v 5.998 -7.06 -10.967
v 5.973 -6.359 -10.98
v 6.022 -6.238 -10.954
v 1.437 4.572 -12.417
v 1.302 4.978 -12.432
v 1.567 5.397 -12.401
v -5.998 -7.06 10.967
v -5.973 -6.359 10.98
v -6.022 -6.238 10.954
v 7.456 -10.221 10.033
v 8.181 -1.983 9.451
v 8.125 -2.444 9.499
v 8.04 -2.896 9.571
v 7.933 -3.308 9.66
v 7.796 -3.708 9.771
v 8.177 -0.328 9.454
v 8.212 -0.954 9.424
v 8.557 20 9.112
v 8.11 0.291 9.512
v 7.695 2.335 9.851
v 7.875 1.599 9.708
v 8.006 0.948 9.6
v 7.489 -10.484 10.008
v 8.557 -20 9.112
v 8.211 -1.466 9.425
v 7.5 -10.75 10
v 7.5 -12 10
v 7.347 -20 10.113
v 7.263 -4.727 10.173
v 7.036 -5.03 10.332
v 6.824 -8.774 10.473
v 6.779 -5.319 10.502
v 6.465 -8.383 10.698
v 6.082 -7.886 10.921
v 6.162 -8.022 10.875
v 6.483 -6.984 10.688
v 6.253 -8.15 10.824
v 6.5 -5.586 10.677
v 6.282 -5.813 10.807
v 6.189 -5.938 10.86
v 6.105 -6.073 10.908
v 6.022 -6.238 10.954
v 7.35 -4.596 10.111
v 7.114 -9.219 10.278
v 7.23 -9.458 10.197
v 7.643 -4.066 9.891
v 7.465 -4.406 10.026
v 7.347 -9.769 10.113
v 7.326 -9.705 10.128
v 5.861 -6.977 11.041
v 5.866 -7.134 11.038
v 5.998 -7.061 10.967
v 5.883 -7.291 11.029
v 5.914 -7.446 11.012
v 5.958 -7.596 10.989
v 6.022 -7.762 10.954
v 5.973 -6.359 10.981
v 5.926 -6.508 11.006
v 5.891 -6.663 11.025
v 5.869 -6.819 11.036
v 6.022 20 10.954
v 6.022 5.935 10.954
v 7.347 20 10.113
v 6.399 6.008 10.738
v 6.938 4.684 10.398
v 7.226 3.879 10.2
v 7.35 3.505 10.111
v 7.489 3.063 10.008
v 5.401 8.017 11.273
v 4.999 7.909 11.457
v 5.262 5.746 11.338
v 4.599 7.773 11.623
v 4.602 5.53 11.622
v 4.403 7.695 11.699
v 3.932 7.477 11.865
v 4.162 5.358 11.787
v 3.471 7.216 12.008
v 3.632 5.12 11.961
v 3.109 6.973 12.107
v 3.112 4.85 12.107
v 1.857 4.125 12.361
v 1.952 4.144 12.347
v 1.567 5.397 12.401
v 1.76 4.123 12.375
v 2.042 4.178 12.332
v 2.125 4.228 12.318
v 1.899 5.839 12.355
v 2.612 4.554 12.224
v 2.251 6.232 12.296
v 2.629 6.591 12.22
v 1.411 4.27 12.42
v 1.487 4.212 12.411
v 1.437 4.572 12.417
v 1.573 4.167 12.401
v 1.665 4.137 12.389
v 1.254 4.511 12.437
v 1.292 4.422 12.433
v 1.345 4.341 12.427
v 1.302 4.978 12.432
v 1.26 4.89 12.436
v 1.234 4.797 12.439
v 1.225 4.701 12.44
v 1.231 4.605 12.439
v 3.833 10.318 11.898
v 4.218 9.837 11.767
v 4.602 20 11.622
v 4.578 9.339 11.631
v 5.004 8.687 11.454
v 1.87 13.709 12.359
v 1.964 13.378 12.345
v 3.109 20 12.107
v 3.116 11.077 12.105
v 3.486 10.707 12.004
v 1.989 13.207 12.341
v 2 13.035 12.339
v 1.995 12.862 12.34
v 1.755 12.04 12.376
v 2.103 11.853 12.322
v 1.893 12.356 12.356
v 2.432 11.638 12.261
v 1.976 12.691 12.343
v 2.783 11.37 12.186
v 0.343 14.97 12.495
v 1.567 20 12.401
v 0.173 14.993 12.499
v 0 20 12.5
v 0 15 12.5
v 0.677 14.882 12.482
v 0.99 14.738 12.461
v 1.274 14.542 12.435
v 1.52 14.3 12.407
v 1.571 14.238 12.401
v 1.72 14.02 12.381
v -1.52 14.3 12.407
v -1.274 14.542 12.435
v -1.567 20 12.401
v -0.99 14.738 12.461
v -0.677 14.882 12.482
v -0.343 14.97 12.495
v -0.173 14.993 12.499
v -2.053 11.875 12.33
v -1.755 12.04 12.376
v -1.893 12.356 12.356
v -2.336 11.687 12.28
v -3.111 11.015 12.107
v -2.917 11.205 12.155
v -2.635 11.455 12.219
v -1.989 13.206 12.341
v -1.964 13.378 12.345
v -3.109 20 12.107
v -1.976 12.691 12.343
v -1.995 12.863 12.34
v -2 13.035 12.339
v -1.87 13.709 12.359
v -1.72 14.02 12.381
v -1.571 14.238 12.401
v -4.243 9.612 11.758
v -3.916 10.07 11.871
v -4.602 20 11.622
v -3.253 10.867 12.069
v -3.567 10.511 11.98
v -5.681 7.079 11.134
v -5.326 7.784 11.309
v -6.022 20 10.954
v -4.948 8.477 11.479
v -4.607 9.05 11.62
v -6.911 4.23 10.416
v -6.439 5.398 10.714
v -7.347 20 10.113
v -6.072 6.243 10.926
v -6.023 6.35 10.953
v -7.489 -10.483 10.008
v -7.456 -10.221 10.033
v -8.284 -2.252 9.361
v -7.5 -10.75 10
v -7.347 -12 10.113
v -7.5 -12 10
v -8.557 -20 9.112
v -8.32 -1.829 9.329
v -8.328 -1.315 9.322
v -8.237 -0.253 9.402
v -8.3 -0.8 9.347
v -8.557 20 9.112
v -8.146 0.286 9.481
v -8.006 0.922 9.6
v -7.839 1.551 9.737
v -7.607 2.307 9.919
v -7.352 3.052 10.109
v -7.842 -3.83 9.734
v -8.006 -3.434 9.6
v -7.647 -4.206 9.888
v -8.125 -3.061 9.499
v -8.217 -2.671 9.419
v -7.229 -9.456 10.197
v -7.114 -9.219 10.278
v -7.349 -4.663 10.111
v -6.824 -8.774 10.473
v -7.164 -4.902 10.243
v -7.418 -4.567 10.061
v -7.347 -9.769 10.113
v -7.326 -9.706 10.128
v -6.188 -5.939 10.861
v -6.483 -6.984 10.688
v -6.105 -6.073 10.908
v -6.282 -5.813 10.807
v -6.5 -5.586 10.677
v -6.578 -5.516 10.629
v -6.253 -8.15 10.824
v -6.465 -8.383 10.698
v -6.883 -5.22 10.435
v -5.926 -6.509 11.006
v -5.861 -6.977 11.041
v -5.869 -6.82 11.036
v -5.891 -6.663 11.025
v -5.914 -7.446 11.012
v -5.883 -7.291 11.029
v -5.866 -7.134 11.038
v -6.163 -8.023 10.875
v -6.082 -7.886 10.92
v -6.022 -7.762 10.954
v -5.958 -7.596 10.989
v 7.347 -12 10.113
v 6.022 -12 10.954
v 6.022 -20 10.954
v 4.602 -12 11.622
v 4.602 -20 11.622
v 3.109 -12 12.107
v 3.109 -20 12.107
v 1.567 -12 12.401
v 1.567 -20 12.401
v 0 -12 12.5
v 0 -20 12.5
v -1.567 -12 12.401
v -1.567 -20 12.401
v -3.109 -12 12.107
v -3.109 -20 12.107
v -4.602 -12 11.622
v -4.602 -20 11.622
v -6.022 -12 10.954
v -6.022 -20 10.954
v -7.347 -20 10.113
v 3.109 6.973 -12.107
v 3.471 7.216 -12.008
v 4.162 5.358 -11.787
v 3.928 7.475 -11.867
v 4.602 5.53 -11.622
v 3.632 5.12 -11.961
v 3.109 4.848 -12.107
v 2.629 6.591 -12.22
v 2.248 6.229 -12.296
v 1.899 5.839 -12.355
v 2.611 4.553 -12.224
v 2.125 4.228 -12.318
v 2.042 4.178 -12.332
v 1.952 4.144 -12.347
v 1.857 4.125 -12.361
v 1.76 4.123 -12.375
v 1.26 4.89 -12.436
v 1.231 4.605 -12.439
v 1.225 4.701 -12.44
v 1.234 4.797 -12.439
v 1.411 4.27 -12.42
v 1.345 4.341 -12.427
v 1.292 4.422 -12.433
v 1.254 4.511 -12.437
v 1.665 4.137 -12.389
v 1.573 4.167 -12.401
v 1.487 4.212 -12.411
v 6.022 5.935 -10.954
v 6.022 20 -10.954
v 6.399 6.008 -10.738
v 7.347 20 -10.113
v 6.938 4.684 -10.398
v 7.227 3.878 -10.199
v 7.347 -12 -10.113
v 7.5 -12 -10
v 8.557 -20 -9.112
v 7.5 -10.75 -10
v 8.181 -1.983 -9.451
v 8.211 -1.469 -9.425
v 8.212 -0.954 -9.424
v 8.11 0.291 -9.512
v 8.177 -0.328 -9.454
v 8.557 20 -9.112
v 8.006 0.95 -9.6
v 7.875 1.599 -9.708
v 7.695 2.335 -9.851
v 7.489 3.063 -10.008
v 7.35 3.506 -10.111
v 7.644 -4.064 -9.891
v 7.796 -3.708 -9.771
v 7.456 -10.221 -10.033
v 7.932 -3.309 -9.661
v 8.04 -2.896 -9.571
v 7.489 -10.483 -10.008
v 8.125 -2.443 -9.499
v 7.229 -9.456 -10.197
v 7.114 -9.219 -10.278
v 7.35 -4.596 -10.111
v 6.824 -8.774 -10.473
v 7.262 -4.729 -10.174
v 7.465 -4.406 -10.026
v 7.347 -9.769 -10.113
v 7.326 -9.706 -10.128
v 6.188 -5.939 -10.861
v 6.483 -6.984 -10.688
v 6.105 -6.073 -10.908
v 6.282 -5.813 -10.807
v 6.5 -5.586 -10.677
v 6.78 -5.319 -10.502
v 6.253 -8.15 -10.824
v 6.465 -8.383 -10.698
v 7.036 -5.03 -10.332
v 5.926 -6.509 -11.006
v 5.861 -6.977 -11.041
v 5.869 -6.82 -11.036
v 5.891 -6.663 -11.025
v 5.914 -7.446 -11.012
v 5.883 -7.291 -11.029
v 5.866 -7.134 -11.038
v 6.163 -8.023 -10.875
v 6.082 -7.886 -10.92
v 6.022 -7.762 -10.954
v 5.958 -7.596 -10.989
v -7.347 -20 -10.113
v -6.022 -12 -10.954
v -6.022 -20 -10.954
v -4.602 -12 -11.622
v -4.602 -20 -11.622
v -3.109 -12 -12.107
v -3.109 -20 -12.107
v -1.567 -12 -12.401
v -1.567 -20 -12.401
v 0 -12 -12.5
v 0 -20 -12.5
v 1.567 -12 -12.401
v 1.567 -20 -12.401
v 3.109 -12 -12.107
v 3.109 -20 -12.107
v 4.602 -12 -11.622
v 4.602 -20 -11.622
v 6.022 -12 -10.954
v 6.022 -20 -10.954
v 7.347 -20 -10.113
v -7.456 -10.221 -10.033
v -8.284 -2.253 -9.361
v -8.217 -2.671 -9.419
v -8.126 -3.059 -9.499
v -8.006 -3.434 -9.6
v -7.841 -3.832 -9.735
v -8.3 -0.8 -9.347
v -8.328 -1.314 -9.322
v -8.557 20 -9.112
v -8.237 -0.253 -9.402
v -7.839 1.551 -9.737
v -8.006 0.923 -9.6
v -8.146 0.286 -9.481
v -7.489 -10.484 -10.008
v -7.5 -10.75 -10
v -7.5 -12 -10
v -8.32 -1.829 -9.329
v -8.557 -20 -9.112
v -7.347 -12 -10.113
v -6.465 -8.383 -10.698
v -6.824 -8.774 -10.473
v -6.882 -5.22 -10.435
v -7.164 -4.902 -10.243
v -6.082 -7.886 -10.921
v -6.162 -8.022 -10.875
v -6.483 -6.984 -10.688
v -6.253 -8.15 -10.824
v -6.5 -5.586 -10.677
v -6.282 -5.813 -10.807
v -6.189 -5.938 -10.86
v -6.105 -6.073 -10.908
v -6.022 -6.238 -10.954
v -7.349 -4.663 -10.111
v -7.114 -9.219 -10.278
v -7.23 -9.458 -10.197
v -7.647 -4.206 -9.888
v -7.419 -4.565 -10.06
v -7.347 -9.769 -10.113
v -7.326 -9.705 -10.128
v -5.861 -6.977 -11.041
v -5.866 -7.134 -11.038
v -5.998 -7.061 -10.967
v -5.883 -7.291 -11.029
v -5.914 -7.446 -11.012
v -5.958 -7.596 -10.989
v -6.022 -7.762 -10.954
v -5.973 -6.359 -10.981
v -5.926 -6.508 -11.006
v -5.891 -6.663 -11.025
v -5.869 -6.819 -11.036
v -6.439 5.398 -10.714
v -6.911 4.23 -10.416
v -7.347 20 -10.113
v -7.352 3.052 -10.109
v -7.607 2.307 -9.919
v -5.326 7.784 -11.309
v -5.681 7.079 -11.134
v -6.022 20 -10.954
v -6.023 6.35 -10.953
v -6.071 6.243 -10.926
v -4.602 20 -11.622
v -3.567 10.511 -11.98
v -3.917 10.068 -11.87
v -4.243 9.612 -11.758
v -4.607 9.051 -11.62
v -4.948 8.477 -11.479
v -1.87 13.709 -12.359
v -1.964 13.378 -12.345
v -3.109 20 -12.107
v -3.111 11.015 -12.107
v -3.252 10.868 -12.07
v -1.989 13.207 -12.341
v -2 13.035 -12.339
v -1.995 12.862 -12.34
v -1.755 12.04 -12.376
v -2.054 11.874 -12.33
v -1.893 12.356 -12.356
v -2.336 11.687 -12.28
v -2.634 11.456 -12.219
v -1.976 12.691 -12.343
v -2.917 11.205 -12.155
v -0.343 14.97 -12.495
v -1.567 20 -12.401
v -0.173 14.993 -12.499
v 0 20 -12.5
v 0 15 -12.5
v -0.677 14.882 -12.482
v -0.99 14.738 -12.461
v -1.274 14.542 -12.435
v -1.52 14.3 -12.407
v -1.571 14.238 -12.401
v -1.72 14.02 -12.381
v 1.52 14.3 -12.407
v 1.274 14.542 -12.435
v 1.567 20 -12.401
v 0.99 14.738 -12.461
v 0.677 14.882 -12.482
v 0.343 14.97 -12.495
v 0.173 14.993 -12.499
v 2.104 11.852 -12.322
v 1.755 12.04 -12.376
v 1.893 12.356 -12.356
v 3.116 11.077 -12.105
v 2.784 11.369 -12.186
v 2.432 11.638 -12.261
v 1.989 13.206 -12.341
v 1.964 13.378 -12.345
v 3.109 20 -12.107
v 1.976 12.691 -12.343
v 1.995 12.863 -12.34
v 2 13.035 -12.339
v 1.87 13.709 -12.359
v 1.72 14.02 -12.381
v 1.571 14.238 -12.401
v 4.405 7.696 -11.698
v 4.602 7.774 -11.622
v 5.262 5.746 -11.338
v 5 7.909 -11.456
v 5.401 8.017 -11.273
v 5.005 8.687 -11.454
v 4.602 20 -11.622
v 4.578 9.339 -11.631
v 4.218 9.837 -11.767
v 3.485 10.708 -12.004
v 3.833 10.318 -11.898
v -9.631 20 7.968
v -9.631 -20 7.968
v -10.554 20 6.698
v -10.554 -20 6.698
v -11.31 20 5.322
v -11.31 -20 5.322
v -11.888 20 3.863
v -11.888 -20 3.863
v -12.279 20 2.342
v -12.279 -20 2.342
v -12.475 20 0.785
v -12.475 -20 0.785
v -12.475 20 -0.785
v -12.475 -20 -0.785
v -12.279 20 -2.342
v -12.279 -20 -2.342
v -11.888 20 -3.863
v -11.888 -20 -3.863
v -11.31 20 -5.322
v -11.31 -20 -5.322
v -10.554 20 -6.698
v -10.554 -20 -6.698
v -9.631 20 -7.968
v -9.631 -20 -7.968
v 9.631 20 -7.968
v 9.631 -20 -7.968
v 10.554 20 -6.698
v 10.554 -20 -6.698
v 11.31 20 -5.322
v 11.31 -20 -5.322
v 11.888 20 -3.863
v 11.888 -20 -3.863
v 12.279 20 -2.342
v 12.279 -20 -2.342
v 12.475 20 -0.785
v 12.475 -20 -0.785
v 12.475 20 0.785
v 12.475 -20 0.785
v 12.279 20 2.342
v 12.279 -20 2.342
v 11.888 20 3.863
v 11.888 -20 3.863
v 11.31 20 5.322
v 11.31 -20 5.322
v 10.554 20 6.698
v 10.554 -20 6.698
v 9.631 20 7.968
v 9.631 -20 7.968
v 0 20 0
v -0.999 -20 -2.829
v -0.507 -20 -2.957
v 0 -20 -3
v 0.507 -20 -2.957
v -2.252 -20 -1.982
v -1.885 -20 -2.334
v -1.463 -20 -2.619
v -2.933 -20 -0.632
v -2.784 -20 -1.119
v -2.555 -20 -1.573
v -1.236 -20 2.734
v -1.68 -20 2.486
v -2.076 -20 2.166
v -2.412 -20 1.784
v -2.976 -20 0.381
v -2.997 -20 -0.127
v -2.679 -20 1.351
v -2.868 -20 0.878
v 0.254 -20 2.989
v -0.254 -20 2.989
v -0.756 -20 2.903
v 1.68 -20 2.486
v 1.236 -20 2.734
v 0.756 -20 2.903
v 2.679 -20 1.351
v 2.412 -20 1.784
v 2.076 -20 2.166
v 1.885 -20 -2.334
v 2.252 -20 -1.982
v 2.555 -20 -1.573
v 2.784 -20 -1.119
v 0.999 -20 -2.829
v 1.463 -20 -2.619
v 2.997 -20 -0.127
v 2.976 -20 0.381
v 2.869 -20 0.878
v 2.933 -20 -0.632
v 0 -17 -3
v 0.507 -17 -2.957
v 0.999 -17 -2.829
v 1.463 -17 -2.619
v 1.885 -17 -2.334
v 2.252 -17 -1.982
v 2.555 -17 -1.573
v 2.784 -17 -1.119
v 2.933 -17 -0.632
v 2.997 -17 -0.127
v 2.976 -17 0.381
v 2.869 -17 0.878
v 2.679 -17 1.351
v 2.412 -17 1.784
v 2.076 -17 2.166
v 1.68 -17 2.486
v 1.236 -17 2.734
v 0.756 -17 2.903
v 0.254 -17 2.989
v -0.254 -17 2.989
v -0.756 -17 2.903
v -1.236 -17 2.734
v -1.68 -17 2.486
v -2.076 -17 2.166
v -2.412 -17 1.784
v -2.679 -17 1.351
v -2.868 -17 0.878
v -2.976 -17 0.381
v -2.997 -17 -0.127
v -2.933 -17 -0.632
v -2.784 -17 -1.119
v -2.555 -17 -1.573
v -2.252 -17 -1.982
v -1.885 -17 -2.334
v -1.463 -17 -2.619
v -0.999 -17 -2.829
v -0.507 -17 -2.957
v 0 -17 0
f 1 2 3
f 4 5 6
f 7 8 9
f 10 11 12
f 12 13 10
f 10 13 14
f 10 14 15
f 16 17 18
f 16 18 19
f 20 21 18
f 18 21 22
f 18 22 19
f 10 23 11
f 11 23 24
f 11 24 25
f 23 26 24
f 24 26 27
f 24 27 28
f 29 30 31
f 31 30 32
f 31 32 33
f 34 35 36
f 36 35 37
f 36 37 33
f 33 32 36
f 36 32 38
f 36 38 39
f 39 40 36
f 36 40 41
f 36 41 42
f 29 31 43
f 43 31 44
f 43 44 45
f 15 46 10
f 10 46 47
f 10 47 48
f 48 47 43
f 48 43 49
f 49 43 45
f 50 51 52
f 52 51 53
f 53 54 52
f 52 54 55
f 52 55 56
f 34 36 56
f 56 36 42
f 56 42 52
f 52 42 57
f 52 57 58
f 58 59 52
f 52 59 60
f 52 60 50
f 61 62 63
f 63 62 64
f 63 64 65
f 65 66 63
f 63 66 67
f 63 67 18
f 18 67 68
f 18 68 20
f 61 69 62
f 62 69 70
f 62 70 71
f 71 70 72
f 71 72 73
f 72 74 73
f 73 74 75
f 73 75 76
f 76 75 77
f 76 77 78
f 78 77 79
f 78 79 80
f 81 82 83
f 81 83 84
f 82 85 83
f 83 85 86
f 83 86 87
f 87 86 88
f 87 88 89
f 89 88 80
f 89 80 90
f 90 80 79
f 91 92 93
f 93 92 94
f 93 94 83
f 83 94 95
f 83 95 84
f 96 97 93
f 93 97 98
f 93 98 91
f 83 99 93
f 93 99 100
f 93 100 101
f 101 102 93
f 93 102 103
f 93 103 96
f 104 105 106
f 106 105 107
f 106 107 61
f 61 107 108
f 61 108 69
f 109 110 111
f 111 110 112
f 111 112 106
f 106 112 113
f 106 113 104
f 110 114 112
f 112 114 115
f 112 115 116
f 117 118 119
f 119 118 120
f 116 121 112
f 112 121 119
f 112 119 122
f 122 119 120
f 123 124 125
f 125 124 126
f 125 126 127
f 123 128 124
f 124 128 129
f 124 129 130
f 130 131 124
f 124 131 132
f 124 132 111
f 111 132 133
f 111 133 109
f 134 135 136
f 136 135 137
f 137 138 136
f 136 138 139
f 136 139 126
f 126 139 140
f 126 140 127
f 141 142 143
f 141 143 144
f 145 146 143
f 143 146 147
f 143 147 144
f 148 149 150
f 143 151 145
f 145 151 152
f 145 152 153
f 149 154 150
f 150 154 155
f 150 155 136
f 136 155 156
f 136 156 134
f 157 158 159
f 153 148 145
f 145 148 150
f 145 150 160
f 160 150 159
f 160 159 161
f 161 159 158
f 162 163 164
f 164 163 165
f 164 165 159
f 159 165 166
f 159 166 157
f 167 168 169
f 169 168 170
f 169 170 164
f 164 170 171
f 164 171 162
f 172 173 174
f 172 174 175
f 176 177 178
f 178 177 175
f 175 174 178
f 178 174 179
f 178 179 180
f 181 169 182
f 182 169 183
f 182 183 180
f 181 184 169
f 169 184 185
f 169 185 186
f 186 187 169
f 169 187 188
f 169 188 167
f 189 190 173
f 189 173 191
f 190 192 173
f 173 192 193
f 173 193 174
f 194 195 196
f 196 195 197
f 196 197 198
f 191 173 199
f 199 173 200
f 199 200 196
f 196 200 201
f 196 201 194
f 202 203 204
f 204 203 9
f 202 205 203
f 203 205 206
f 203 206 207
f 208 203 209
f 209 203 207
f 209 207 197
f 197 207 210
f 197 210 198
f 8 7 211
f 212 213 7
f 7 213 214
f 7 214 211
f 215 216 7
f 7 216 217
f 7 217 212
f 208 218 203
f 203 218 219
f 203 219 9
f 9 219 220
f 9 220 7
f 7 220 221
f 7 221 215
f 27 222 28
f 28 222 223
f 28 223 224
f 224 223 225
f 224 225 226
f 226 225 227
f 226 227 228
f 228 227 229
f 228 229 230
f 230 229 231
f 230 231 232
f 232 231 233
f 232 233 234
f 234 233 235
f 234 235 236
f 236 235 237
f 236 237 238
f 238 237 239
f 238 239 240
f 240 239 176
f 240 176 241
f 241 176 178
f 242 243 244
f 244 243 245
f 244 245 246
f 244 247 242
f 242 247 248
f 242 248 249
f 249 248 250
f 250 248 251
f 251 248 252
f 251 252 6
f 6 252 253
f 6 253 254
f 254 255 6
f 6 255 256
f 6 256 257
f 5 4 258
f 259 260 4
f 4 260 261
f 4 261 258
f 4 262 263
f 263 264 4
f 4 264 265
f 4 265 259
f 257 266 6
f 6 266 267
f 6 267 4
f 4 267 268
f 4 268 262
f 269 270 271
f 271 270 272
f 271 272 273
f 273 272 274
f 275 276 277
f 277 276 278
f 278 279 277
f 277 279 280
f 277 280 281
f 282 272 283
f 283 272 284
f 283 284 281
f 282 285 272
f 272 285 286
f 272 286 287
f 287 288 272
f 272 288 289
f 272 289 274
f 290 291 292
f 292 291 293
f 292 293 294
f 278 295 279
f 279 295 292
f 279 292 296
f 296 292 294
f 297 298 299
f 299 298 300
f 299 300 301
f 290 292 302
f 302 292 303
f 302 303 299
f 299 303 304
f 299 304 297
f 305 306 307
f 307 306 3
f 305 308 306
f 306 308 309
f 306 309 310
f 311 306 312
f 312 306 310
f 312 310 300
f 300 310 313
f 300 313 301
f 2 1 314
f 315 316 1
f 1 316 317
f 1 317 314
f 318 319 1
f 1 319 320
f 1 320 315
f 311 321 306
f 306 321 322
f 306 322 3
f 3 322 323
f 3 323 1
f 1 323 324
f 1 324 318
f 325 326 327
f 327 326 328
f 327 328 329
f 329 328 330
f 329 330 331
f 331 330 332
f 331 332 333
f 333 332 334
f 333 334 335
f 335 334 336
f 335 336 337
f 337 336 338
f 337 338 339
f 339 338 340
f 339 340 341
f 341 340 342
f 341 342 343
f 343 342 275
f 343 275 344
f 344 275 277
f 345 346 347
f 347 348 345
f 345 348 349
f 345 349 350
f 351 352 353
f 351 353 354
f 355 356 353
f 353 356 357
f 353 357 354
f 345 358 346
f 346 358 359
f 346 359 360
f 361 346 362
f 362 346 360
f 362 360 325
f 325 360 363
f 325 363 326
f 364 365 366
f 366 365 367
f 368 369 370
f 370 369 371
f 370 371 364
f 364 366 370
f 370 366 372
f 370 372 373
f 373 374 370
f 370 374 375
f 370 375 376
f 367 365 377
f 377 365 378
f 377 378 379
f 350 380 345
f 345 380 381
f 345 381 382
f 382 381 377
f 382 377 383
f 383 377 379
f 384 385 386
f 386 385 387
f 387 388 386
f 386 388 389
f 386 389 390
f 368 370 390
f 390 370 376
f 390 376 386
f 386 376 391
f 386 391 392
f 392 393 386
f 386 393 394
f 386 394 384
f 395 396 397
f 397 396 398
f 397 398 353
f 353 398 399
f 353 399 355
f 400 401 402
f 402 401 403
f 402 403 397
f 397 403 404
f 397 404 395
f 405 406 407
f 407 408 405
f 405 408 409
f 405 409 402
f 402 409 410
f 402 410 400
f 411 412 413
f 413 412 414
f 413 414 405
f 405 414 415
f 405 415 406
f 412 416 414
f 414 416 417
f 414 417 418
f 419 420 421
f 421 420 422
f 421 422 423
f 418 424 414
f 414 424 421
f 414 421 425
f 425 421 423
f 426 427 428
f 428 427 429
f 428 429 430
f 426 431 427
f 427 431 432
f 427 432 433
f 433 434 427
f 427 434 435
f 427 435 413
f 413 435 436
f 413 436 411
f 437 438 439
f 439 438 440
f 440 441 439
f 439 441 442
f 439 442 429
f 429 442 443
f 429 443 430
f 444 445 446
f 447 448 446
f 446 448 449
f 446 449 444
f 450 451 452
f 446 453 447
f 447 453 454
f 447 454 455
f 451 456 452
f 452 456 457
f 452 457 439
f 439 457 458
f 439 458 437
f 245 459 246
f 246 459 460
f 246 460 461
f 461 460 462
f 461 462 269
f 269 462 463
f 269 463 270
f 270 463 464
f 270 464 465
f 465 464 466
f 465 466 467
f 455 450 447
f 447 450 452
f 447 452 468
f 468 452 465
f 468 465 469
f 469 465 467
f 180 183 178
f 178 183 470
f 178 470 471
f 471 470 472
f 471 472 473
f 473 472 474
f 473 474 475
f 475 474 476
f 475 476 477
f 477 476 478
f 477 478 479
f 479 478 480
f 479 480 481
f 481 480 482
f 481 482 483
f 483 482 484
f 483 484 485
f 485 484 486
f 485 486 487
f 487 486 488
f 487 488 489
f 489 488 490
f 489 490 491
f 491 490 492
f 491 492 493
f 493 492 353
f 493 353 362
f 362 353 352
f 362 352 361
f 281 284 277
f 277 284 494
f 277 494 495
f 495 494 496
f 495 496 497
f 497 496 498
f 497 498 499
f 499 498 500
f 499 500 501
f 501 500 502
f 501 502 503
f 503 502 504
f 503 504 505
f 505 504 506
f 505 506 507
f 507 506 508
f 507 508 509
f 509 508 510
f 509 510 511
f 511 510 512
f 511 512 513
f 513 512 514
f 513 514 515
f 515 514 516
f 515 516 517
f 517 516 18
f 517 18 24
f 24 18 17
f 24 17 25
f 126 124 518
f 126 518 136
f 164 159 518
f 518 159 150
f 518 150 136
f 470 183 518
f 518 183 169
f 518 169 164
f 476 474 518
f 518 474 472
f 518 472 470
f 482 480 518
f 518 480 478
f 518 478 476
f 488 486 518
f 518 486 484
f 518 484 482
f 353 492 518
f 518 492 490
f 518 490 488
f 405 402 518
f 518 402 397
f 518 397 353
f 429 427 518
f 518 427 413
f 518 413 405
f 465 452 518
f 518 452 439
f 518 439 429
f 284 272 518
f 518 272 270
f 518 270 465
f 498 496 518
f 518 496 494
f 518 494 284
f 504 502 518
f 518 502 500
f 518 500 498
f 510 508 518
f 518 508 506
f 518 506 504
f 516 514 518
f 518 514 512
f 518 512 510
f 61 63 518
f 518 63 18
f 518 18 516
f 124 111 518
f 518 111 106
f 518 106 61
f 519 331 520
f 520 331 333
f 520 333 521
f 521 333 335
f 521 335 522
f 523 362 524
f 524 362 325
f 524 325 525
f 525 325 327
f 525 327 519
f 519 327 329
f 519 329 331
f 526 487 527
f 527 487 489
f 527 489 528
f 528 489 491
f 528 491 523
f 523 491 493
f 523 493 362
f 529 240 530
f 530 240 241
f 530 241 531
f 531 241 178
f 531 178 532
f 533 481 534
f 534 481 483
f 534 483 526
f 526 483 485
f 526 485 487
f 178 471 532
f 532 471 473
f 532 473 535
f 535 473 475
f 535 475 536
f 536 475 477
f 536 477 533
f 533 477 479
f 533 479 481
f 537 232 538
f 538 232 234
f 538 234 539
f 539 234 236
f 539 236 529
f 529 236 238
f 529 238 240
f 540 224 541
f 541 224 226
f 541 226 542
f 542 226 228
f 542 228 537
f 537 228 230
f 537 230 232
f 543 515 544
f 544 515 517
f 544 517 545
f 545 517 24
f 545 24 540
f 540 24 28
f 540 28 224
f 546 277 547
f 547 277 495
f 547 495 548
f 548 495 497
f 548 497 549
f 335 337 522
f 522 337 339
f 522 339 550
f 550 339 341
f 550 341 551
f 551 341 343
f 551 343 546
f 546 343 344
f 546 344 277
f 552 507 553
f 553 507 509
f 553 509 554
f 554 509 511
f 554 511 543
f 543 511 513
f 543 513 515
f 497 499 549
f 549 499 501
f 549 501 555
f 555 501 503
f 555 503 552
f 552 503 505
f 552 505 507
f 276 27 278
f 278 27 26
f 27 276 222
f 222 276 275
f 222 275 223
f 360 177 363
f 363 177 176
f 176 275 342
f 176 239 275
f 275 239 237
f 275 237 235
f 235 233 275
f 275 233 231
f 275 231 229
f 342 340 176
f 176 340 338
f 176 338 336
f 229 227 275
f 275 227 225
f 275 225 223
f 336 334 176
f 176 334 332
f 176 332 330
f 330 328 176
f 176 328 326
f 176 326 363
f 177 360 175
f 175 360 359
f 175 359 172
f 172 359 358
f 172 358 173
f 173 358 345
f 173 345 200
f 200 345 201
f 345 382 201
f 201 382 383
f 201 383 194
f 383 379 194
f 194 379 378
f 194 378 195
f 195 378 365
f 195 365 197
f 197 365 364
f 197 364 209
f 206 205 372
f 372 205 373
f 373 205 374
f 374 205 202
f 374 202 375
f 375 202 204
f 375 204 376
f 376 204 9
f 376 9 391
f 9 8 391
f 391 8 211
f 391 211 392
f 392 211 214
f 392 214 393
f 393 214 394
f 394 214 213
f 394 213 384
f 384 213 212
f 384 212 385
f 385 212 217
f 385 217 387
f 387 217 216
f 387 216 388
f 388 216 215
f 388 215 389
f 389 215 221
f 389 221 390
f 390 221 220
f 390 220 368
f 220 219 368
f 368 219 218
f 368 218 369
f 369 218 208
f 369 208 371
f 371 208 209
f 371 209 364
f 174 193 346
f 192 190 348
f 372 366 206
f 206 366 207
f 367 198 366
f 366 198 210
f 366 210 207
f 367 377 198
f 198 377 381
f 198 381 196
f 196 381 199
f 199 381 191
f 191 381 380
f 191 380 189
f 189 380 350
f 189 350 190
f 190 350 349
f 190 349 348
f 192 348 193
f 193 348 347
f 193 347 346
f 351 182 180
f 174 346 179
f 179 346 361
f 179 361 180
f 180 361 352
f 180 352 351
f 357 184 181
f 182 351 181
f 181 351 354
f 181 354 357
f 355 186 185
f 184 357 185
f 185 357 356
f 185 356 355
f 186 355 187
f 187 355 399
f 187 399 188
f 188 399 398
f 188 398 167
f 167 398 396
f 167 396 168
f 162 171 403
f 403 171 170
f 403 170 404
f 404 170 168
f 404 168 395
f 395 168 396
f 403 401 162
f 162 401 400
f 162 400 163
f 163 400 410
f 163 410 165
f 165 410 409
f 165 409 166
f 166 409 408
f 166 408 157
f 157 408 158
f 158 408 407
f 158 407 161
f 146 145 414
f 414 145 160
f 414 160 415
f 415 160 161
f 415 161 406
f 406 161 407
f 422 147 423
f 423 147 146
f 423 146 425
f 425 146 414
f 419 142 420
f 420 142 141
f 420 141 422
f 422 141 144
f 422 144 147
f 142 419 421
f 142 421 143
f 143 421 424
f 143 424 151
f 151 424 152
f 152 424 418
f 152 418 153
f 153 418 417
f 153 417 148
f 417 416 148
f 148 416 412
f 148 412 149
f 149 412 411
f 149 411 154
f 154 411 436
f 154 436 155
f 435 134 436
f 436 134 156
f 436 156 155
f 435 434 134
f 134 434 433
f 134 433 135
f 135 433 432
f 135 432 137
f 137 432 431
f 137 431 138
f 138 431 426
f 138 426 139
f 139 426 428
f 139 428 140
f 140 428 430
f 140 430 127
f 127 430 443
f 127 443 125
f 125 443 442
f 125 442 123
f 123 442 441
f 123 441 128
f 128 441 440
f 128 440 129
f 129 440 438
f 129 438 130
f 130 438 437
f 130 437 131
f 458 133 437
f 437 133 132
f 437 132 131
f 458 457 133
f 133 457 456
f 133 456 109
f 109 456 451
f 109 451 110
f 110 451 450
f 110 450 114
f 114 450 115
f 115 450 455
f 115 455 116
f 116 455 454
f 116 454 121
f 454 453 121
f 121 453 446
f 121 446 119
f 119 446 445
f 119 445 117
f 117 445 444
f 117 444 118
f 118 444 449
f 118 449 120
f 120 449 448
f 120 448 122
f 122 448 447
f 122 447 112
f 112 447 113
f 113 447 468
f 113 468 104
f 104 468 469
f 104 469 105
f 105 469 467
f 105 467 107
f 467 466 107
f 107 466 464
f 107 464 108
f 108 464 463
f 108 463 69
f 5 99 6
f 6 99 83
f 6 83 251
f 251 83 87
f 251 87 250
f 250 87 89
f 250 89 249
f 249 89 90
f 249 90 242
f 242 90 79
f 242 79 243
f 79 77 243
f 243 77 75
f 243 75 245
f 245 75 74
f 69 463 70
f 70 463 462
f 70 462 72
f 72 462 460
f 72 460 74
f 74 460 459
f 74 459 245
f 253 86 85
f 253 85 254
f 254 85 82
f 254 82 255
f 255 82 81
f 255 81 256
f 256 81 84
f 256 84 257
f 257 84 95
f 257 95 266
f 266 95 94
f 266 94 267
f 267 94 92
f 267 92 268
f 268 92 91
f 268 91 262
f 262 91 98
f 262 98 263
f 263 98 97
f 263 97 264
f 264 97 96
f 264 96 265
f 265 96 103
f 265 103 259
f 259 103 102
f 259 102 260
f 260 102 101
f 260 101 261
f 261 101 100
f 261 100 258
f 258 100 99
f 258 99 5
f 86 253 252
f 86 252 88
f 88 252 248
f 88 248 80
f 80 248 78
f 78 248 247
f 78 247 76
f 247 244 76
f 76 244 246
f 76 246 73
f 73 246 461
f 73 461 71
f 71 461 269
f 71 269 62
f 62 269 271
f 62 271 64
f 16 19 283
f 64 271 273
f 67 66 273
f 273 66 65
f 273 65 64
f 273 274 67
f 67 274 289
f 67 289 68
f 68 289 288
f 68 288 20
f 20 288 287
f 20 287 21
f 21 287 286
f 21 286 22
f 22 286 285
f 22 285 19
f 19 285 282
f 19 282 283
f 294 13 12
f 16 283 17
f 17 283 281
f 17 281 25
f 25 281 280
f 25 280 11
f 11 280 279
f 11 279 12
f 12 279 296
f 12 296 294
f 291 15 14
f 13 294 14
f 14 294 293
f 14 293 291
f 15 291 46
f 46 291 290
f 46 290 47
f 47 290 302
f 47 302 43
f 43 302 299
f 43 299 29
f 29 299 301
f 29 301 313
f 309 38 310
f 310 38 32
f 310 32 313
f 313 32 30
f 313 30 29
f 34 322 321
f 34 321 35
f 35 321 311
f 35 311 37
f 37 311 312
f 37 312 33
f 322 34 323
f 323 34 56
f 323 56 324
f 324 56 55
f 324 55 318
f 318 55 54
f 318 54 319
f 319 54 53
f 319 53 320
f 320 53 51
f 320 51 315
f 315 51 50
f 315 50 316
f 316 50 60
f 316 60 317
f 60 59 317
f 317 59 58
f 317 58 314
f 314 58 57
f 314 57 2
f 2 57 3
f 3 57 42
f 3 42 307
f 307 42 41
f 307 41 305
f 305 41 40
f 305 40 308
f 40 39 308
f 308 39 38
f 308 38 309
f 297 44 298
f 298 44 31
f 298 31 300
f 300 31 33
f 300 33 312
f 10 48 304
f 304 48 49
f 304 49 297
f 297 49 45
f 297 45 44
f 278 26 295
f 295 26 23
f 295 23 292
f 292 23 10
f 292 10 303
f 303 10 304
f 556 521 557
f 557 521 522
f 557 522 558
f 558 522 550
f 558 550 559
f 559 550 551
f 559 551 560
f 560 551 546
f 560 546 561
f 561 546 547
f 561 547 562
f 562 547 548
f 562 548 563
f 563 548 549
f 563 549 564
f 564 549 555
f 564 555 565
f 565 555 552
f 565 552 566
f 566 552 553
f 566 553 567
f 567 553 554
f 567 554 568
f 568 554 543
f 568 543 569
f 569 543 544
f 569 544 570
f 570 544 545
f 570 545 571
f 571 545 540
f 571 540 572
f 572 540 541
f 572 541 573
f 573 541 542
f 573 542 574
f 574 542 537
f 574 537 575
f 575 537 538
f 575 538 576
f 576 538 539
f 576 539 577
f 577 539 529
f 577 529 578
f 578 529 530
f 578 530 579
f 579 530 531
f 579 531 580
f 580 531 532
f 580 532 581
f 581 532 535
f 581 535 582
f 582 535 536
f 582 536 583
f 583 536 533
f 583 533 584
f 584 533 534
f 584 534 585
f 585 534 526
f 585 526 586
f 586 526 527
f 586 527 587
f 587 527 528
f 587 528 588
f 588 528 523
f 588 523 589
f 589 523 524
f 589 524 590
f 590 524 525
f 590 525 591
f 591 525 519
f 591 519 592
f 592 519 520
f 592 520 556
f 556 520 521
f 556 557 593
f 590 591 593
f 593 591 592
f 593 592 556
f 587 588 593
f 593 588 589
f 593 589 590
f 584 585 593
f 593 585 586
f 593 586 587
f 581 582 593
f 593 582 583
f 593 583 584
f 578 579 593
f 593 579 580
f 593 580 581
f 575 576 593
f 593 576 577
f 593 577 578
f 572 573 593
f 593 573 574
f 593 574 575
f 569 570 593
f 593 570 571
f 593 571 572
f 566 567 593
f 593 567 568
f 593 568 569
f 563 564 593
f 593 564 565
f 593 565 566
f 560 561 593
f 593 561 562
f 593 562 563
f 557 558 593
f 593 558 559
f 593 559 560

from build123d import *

# Parameters (mm, degrees)
SKETCH2_R               = 12.5
BOSS_EXTRUDE1_DEPTH     = 20
CUT_EXTRUDE1_DEPTH      = 13.5
CUT_EXTRUDE1_DEPTH_BACK = 13.5
SKETCH4_R               = 3
CUT_EXTRUDE2_DEPTH      = 3


with BuildPart() as part:
    # Sketch2 → Boss-Extrude1 (new body, symmetric)
    with BuildSketch(Plane(origin=(0, 0, 0), x_dir=(1, 0, 0), z_dir=(0, 1, 0))):
        Circle(SKETCH2_R)
    extrude(amount=BOSS_EXTRUDE1_DEPTH, both=True)

    # Sketch3 → Cut-Extrude1 (cut, two sides)
    with BuildSketch(Plane.XY) as cut_extrude1_sk:
        with BuildLine():
            Line((-7.5, -12), (7.5, -12))
            Line((7.5, -12), (7.5, -10.75))
            ThreePointArc((7.5, -10.75), (7.229985685, -9.458141194), (6.465151267, -8.38257845))
            ThreePointArc((6.465151267, -8.38257845), (5.860943971, -6.976529652), (6.5, -5.585973264))
            add(Edge.make_bspline(
                [(6.399106832, 6.007513462), (6.674880251, 5.37945403), (8.419258071, 0.928997207), (8.866568078, -3.503239262), (6.5, -5.585973264)],
                knots=[0.721905241, 0.721905241, 0.721905241, 0.721905241, 0.762107282, 1, 1, 1, 1], degree=3))
            ThreePointArc((6.399106832, 6.007513462), (4.161846652, 5.358127462), (2.124976719, 4.227554084))
            ThreePointArc((2.124976719, 4.227554084), (1.410783073, 4.270418303), (1.30152237, 4.977505287))
            ThreePointArc((1.30152237, 4.977505287), (3.037185837, 6.920492718), (5.400514483, 8.017035255))
            add(Edge.make_bspline(
                [(1.754727772, 12.040348789), (3.097405823, 11.396858203), (4.352310199, 9.878271217), (5.400514483, 8.017035255)],
                knots=[0.547214619, 0.547214619, 0.547214619, 0.547214619, 0.67737121, 0.67737121, 0.67737121, 0.67737121], degree=3))
            ThreePointArc((1.754727772, 12.040348789), (0, 15), (-1.754727772, 12.040348789))
            add(Edge.make_bspline(
                [(-6.5, -5.585973264), (-9.280086296, -3.139316304), (-7.648890565, 3.398221212), (-3.956299658, 10.941083142), (-1.754727772, 12.040348789)],
                knots=[0, 0, 0, 0, 0.237892718, 0.453262832, 0.453262832, 0.453262832, 0.453262832], degree=3))
            ThreePointArc((-6.5, -5.585973264), (-5.860943971, -6.976529652), (-6.465151267, -8.38257845))
            ThreePointArc((-6.465151267, -8.38257845), (-7.229985685, -9.458141194), (-7.5, -10.75))
            Line((-7.5, -10.75), (-7.5, -12))
        make_face()
    extrude(amount=CUT_EXTRUDE1_DEPTH, mode=Mode.SUBTRACT)
    extrude(cut_extrude1_sk.sketch, amount=-CUT_EXTRUDE1_DEPTH_BACK, mode=Mode.SUBTRACT)

    # Sketch4 → Cut-Extrude2 (cut)
    with BuildSketch(Plane(origin=(0, -20, 0), x_dir=(-1, 0, 0), z_dir=(0, -1, 0))):
        Circle(SKETCH4_R)
    extrude(amount=-CUT_EXTRUDE2_DEPTH, mode=Mode.SUBTRACT)


solid = part.part
